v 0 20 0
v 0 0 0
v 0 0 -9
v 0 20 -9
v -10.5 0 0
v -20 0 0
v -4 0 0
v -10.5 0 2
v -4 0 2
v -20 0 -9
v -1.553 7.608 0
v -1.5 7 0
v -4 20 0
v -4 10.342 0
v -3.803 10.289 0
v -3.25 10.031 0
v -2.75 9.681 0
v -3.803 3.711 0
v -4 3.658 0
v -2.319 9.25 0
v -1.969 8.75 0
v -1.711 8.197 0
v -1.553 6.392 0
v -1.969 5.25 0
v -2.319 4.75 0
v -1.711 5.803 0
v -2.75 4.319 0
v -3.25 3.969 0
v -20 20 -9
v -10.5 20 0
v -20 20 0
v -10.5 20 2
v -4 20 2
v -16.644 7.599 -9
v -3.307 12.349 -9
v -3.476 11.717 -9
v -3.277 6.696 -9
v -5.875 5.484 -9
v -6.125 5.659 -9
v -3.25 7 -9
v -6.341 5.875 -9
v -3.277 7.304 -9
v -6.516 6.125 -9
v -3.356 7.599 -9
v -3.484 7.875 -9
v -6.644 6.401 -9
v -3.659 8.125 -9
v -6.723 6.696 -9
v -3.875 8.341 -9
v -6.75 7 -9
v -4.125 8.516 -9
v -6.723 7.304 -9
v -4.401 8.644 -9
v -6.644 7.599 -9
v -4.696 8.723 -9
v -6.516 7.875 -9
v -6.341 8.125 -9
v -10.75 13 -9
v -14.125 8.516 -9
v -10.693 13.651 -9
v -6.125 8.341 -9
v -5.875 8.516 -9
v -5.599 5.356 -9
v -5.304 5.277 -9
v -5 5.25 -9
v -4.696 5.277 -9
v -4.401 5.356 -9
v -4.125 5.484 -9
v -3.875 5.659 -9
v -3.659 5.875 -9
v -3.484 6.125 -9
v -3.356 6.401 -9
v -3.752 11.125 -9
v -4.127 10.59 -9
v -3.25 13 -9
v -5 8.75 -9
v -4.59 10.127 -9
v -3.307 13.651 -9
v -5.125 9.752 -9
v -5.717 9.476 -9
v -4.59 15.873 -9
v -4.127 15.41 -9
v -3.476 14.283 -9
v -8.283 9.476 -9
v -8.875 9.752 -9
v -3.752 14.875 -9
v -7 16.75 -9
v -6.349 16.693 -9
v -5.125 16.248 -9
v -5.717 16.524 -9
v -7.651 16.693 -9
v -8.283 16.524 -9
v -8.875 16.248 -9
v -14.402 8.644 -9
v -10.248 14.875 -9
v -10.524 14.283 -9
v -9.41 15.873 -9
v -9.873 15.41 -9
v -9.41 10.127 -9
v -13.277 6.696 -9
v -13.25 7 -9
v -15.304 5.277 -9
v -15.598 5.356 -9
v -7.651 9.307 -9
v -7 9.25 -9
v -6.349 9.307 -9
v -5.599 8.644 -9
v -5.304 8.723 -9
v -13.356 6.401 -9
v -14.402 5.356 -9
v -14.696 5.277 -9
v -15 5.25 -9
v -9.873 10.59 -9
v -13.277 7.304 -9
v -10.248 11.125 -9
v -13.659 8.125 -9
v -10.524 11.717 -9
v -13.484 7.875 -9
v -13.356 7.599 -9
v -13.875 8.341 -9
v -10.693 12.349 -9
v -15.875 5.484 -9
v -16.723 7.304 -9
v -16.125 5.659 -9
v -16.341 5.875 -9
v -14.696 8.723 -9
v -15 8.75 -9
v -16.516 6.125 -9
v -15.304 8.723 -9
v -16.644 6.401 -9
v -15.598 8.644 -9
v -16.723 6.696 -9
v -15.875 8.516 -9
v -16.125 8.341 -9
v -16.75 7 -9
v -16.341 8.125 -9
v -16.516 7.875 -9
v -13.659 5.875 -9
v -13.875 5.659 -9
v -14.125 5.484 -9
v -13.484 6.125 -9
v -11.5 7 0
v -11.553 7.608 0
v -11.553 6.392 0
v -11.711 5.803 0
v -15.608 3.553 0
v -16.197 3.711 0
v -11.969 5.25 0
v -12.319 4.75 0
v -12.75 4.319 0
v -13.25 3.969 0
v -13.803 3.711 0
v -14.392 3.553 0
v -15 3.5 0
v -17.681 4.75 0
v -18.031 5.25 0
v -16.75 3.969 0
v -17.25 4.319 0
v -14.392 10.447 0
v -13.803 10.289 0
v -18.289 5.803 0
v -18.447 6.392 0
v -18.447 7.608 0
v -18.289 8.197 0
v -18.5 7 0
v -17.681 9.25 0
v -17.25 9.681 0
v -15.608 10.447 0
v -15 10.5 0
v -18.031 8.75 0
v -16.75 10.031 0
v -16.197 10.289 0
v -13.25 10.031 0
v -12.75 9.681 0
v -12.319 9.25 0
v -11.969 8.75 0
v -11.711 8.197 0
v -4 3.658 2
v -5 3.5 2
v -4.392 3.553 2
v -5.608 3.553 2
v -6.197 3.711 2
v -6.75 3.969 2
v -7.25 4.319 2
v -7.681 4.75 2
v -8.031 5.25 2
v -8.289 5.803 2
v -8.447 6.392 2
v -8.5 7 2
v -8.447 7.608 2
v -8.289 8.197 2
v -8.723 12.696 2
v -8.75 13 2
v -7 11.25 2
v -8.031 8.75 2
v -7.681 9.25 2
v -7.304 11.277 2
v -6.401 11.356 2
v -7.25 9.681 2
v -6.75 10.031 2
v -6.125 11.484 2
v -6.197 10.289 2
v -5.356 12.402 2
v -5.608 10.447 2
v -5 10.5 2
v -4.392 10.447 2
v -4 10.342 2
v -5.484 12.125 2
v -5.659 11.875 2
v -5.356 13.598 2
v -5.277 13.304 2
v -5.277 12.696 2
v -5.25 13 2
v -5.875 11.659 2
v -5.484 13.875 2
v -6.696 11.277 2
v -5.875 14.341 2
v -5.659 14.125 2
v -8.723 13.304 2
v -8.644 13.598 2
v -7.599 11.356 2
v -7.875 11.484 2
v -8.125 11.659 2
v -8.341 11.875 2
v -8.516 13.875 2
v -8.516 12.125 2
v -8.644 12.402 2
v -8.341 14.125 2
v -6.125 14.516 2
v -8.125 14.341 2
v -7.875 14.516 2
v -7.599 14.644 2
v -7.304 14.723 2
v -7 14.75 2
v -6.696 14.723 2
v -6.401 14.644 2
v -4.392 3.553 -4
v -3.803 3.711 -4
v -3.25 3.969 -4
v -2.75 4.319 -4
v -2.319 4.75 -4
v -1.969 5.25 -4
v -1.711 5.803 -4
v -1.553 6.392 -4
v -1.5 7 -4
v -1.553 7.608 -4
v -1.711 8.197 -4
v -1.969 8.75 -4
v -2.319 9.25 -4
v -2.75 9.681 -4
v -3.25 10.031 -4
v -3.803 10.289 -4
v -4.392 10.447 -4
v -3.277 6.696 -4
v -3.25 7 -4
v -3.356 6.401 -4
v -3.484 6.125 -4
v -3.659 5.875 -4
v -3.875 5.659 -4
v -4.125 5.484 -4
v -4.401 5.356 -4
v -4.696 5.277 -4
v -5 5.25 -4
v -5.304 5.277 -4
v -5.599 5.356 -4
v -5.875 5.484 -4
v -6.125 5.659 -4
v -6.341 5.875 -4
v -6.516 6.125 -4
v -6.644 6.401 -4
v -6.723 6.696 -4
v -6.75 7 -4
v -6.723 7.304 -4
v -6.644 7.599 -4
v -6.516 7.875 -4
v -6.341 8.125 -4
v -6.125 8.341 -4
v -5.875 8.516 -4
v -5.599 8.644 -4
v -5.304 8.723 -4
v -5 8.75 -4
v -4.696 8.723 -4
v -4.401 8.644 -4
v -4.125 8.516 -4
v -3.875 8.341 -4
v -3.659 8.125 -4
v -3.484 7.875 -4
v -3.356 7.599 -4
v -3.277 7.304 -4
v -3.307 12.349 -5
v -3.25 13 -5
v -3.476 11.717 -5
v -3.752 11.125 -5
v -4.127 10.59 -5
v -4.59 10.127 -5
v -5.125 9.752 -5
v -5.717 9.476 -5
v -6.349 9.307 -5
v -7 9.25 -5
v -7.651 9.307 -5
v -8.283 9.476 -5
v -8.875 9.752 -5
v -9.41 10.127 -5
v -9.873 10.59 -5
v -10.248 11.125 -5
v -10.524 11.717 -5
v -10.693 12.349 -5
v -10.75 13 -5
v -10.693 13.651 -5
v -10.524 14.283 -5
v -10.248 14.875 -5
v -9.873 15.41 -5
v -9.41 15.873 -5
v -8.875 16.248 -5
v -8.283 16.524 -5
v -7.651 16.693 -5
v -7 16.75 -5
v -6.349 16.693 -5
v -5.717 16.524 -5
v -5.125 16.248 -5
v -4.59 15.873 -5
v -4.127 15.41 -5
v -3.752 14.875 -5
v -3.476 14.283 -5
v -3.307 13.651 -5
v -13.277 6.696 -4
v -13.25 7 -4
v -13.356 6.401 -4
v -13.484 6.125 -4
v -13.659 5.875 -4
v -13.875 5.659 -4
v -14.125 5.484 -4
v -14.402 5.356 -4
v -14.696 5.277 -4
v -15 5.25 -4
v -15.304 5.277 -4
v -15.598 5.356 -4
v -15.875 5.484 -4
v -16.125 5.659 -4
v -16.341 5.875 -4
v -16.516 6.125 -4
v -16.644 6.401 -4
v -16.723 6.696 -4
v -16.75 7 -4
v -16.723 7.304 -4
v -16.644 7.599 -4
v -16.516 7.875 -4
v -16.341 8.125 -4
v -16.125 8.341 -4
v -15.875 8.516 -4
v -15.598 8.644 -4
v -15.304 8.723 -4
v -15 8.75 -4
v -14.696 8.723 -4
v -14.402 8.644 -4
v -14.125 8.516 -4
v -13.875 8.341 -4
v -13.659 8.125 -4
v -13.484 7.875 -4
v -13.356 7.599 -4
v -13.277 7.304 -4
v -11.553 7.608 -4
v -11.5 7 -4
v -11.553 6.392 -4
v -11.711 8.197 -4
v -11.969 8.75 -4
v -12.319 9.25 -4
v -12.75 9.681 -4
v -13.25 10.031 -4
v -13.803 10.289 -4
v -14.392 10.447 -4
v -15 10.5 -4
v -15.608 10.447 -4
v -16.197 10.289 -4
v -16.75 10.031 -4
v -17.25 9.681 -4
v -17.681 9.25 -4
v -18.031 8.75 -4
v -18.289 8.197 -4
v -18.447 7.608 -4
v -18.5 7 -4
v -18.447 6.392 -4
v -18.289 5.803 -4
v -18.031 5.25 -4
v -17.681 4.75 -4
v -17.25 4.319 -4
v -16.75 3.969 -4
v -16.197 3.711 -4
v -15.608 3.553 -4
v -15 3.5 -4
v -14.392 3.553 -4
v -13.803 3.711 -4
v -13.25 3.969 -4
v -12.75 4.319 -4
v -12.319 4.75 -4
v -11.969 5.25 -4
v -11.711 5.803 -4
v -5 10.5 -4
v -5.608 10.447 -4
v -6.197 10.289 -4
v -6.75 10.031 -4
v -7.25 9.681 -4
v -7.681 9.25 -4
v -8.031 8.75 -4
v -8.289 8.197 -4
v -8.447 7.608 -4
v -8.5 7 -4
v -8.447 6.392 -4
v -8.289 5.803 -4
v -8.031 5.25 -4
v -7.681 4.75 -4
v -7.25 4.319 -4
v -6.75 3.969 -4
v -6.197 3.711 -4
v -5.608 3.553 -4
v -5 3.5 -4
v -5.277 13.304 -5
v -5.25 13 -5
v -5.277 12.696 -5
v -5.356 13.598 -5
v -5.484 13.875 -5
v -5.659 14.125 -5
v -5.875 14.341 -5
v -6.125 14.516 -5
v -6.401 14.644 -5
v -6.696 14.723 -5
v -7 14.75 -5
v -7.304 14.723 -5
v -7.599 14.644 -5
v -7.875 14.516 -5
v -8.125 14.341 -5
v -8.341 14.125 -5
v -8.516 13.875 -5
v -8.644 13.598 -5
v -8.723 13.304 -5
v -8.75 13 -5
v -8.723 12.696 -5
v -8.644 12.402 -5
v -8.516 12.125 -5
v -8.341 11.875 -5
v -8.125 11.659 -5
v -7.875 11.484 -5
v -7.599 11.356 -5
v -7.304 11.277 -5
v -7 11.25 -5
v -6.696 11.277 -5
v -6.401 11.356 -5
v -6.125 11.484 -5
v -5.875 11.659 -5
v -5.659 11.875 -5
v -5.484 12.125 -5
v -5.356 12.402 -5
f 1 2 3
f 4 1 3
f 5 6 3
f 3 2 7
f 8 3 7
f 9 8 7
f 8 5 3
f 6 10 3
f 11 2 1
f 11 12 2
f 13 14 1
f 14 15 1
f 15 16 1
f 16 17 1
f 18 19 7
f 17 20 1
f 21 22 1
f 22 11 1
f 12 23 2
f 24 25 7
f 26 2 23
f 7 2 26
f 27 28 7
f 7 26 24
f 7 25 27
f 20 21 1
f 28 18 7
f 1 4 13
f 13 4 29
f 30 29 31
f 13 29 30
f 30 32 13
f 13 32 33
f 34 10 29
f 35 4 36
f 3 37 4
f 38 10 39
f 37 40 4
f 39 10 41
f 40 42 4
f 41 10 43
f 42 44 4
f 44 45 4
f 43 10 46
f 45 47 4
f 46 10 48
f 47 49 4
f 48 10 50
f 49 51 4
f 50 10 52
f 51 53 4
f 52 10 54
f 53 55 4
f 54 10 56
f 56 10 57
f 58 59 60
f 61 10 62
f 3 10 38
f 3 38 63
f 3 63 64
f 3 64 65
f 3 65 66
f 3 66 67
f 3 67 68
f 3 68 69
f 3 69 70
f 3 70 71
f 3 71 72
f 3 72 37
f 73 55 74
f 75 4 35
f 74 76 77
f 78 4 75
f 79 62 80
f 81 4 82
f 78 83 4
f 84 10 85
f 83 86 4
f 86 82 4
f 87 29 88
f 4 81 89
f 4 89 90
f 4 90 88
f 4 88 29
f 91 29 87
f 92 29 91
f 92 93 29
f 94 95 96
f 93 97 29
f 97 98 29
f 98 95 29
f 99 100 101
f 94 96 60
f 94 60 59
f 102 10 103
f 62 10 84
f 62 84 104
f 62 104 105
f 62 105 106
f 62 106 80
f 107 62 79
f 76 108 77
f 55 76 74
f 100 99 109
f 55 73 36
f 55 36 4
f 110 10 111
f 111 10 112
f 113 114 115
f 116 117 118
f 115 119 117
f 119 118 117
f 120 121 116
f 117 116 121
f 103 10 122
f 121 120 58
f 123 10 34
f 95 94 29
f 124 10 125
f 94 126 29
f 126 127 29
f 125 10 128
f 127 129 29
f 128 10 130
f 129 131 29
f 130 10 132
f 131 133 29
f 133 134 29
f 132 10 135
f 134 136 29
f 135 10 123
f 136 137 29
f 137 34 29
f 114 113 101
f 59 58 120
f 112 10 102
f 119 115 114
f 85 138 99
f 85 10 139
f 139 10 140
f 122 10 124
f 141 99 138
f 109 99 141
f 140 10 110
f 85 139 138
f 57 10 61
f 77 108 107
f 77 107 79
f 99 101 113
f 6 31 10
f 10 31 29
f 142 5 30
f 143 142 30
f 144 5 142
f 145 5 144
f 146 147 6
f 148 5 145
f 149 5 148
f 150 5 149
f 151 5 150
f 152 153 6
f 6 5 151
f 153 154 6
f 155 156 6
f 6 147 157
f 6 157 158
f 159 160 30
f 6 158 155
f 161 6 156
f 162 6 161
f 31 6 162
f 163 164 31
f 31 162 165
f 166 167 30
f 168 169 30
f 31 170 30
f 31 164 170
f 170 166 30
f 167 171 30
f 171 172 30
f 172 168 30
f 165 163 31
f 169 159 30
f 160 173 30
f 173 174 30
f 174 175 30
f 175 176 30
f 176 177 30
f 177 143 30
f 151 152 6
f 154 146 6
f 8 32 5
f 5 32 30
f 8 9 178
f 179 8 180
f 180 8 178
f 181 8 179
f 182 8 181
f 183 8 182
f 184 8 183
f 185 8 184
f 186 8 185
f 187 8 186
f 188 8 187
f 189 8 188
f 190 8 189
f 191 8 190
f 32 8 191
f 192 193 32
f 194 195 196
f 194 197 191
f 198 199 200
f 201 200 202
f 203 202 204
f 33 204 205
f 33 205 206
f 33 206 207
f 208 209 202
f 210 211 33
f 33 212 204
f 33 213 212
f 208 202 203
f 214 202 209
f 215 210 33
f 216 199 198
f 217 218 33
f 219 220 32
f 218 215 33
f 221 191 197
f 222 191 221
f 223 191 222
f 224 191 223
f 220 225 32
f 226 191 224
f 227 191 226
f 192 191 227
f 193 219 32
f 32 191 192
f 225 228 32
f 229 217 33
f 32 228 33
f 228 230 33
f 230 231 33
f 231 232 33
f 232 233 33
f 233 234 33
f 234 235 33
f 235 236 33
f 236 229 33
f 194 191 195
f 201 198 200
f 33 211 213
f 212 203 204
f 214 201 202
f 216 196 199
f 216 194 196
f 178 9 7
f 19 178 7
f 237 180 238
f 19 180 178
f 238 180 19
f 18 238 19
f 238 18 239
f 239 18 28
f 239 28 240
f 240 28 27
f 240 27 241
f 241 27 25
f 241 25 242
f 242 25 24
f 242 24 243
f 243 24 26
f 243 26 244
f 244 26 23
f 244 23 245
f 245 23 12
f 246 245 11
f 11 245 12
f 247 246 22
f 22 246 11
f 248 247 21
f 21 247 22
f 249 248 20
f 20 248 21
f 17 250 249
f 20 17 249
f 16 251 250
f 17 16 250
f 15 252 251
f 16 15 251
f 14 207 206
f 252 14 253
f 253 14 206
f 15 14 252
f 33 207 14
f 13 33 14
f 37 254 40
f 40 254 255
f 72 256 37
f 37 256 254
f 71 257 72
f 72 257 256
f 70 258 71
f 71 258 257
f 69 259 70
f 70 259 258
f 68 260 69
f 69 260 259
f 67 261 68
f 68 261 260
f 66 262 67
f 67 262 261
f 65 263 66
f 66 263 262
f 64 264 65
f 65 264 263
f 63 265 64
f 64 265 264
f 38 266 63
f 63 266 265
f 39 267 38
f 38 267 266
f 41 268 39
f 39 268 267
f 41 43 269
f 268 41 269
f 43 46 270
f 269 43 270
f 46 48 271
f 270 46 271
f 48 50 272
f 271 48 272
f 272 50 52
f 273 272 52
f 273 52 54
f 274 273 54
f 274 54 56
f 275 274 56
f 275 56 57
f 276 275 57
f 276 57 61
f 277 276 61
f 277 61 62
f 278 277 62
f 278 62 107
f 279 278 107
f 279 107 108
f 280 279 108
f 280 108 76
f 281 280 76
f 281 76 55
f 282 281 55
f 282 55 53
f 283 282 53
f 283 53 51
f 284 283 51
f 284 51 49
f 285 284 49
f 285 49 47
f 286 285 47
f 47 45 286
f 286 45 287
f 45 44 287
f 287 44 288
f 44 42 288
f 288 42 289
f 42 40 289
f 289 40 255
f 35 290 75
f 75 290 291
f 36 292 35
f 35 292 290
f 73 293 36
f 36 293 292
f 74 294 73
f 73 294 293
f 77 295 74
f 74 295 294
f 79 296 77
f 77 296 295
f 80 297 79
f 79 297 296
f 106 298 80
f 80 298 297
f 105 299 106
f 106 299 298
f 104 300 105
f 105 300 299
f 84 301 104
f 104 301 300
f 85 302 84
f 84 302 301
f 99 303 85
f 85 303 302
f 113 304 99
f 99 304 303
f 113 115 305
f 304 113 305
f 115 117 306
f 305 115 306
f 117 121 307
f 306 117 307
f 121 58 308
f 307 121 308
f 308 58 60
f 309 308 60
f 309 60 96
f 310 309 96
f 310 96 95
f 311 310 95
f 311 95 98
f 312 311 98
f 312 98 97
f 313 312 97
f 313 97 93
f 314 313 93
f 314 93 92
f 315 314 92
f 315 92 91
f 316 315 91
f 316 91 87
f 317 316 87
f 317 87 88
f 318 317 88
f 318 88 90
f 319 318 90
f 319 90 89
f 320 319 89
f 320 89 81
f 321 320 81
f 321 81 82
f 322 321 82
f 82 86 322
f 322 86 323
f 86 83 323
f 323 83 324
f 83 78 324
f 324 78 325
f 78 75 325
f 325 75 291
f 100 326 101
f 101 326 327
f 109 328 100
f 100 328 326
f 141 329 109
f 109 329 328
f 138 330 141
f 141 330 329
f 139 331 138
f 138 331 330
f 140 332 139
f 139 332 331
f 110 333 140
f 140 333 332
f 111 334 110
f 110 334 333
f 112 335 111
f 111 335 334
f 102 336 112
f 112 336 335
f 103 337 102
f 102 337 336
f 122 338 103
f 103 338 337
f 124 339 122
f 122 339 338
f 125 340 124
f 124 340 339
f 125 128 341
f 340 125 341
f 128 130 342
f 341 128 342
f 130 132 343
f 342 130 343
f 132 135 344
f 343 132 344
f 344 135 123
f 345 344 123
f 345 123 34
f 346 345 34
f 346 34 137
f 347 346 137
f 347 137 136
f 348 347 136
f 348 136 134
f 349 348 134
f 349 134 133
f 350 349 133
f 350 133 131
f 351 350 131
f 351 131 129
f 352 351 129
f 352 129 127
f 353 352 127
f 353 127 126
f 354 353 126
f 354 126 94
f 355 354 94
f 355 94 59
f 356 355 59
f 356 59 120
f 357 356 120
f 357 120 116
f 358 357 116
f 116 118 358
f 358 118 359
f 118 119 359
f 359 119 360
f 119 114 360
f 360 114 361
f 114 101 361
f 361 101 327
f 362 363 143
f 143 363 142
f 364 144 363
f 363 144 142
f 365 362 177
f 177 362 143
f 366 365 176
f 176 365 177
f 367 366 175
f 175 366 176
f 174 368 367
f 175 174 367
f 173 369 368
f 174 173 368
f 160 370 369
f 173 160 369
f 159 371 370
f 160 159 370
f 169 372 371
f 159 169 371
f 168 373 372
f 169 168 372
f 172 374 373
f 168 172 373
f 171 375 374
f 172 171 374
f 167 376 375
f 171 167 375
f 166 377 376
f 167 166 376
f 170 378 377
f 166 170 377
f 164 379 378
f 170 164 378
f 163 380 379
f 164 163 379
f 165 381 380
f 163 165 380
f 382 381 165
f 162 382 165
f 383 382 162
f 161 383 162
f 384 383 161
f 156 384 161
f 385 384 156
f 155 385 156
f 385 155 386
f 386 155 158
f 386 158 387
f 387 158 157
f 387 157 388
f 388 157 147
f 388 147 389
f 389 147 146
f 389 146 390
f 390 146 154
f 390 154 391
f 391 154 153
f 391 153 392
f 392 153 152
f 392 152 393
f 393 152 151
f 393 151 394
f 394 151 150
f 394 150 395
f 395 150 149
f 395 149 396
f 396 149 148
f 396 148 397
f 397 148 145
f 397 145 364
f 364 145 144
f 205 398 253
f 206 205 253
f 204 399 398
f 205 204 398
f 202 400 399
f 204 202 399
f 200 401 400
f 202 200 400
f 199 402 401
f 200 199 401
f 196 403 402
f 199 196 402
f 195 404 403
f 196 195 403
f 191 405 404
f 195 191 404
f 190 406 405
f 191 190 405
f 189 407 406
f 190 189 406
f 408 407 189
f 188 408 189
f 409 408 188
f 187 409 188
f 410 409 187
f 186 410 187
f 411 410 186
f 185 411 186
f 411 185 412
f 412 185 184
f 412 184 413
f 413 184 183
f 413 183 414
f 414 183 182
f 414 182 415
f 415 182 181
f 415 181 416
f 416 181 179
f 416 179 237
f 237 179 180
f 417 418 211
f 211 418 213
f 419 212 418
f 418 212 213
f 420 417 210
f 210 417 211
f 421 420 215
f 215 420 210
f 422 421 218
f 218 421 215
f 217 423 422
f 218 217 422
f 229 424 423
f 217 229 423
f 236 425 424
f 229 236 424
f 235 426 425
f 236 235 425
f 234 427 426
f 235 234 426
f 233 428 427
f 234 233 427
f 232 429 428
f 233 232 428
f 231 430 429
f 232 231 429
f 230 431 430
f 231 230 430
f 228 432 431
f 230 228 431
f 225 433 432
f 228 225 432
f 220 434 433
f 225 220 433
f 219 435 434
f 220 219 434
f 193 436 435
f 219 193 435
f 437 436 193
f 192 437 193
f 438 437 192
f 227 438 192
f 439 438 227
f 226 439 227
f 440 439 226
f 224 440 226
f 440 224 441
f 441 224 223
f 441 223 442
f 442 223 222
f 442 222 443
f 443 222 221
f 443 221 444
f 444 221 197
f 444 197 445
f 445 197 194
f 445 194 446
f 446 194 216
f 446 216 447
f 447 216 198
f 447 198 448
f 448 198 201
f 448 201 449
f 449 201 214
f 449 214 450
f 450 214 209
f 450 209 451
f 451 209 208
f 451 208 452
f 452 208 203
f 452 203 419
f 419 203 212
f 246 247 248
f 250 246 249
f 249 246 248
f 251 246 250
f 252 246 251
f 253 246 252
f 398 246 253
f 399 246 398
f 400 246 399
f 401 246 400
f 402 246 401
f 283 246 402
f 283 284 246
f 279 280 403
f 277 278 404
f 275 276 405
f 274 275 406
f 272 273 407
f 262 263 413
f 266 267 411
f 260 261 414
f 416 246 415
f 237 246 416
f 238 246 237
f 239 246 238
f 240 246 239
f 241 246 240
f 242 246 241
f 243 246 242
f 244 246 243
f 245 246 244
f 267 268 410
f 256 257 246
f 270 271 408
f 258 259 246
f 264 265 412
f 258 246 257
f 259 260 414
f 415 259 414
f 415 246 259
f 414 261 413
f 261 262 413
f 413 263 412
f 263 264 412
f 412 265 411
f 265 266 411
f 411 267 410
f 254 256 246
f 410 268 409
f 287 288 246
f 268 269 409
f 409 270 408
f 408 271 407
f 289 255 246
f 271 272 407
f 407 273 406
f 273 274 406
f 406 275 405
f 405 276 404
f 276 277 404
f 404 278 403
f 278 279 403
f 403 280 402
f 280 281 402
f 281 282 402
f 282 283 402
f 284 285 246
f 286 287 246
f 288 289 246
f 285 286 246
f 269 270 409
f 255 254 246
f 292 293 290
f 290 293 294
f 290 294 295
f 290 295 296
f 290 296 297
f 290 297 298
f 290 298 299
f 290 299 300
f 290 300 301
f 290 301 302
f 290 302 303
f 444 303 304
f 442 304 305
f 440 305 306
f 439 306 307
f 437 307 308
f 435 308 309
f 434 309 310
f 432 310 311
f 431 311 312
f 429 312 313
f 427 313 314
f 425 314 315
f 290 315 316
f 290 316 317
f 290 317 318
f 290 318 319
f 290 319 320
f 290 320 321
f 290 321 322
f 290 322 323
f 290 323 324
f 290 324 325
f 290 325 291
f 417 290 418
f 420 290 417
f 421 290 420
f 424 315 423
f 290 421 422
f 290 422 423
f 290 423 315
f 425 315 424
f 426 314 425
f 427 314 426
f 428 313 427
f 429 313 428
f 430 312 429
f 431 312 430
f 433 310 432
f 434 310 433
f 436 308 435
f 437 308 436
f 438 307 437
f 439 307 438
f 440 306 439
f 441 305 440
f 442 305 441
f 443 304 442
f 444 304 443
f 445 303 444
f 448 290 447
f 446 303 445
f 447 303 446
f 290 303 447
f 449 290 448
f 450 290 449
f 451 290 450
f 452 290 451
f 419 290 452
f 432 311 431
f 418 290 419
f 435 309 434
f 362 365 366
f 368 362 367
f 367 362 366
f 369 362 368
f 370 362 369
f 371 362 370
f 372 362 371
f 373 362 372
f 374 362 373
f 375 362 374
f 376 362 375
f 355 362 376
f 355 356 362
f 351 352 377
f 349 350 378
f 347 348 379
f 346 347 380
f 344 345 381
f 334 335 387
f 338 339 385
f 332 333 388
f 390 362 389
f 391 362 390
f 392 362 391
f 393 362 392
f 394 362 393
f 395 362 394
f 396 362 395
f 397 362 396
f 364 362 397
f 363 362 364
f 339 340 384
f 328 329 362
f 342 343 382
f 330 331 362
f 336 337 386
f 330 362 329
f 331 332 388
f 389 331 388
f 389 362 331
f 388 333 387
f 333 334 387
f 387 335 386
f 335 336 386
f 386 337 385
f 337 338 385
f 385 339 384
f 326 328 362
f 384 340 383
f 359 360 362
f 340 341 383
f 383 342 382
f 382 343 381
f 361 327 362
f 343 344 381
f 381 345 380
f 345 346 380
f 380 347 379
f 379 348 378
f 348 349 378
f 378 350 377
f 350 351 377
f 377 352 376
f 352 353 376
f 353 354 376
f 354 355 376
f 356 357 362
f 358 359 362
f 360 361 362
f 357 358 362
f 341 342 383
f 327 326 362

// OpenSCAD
$fn=36;

rotate([0,180,0])
difference()
{
	union()
	{
		cube([20,20,9]);
		translate([4,0,-2]) cube([6.5,20,2]);
	}
	translate([5,7,0]) cylinder(d=3.5,h=10);
	translate([15,7,0]) cylinder(d=3.5,h=10);
	translate([5,7,-4]) cylinder(d=7,h=8);
	translate([15,7,0]) cylinder(d=7,h=4);

	translate([7,13,-4]) cylinder(d=3.5,h=14);
	translate([7,13,5]) cylinder(d=7.5,h=9);
}
//translate([-5,-10]) cube([5,20,10]);
